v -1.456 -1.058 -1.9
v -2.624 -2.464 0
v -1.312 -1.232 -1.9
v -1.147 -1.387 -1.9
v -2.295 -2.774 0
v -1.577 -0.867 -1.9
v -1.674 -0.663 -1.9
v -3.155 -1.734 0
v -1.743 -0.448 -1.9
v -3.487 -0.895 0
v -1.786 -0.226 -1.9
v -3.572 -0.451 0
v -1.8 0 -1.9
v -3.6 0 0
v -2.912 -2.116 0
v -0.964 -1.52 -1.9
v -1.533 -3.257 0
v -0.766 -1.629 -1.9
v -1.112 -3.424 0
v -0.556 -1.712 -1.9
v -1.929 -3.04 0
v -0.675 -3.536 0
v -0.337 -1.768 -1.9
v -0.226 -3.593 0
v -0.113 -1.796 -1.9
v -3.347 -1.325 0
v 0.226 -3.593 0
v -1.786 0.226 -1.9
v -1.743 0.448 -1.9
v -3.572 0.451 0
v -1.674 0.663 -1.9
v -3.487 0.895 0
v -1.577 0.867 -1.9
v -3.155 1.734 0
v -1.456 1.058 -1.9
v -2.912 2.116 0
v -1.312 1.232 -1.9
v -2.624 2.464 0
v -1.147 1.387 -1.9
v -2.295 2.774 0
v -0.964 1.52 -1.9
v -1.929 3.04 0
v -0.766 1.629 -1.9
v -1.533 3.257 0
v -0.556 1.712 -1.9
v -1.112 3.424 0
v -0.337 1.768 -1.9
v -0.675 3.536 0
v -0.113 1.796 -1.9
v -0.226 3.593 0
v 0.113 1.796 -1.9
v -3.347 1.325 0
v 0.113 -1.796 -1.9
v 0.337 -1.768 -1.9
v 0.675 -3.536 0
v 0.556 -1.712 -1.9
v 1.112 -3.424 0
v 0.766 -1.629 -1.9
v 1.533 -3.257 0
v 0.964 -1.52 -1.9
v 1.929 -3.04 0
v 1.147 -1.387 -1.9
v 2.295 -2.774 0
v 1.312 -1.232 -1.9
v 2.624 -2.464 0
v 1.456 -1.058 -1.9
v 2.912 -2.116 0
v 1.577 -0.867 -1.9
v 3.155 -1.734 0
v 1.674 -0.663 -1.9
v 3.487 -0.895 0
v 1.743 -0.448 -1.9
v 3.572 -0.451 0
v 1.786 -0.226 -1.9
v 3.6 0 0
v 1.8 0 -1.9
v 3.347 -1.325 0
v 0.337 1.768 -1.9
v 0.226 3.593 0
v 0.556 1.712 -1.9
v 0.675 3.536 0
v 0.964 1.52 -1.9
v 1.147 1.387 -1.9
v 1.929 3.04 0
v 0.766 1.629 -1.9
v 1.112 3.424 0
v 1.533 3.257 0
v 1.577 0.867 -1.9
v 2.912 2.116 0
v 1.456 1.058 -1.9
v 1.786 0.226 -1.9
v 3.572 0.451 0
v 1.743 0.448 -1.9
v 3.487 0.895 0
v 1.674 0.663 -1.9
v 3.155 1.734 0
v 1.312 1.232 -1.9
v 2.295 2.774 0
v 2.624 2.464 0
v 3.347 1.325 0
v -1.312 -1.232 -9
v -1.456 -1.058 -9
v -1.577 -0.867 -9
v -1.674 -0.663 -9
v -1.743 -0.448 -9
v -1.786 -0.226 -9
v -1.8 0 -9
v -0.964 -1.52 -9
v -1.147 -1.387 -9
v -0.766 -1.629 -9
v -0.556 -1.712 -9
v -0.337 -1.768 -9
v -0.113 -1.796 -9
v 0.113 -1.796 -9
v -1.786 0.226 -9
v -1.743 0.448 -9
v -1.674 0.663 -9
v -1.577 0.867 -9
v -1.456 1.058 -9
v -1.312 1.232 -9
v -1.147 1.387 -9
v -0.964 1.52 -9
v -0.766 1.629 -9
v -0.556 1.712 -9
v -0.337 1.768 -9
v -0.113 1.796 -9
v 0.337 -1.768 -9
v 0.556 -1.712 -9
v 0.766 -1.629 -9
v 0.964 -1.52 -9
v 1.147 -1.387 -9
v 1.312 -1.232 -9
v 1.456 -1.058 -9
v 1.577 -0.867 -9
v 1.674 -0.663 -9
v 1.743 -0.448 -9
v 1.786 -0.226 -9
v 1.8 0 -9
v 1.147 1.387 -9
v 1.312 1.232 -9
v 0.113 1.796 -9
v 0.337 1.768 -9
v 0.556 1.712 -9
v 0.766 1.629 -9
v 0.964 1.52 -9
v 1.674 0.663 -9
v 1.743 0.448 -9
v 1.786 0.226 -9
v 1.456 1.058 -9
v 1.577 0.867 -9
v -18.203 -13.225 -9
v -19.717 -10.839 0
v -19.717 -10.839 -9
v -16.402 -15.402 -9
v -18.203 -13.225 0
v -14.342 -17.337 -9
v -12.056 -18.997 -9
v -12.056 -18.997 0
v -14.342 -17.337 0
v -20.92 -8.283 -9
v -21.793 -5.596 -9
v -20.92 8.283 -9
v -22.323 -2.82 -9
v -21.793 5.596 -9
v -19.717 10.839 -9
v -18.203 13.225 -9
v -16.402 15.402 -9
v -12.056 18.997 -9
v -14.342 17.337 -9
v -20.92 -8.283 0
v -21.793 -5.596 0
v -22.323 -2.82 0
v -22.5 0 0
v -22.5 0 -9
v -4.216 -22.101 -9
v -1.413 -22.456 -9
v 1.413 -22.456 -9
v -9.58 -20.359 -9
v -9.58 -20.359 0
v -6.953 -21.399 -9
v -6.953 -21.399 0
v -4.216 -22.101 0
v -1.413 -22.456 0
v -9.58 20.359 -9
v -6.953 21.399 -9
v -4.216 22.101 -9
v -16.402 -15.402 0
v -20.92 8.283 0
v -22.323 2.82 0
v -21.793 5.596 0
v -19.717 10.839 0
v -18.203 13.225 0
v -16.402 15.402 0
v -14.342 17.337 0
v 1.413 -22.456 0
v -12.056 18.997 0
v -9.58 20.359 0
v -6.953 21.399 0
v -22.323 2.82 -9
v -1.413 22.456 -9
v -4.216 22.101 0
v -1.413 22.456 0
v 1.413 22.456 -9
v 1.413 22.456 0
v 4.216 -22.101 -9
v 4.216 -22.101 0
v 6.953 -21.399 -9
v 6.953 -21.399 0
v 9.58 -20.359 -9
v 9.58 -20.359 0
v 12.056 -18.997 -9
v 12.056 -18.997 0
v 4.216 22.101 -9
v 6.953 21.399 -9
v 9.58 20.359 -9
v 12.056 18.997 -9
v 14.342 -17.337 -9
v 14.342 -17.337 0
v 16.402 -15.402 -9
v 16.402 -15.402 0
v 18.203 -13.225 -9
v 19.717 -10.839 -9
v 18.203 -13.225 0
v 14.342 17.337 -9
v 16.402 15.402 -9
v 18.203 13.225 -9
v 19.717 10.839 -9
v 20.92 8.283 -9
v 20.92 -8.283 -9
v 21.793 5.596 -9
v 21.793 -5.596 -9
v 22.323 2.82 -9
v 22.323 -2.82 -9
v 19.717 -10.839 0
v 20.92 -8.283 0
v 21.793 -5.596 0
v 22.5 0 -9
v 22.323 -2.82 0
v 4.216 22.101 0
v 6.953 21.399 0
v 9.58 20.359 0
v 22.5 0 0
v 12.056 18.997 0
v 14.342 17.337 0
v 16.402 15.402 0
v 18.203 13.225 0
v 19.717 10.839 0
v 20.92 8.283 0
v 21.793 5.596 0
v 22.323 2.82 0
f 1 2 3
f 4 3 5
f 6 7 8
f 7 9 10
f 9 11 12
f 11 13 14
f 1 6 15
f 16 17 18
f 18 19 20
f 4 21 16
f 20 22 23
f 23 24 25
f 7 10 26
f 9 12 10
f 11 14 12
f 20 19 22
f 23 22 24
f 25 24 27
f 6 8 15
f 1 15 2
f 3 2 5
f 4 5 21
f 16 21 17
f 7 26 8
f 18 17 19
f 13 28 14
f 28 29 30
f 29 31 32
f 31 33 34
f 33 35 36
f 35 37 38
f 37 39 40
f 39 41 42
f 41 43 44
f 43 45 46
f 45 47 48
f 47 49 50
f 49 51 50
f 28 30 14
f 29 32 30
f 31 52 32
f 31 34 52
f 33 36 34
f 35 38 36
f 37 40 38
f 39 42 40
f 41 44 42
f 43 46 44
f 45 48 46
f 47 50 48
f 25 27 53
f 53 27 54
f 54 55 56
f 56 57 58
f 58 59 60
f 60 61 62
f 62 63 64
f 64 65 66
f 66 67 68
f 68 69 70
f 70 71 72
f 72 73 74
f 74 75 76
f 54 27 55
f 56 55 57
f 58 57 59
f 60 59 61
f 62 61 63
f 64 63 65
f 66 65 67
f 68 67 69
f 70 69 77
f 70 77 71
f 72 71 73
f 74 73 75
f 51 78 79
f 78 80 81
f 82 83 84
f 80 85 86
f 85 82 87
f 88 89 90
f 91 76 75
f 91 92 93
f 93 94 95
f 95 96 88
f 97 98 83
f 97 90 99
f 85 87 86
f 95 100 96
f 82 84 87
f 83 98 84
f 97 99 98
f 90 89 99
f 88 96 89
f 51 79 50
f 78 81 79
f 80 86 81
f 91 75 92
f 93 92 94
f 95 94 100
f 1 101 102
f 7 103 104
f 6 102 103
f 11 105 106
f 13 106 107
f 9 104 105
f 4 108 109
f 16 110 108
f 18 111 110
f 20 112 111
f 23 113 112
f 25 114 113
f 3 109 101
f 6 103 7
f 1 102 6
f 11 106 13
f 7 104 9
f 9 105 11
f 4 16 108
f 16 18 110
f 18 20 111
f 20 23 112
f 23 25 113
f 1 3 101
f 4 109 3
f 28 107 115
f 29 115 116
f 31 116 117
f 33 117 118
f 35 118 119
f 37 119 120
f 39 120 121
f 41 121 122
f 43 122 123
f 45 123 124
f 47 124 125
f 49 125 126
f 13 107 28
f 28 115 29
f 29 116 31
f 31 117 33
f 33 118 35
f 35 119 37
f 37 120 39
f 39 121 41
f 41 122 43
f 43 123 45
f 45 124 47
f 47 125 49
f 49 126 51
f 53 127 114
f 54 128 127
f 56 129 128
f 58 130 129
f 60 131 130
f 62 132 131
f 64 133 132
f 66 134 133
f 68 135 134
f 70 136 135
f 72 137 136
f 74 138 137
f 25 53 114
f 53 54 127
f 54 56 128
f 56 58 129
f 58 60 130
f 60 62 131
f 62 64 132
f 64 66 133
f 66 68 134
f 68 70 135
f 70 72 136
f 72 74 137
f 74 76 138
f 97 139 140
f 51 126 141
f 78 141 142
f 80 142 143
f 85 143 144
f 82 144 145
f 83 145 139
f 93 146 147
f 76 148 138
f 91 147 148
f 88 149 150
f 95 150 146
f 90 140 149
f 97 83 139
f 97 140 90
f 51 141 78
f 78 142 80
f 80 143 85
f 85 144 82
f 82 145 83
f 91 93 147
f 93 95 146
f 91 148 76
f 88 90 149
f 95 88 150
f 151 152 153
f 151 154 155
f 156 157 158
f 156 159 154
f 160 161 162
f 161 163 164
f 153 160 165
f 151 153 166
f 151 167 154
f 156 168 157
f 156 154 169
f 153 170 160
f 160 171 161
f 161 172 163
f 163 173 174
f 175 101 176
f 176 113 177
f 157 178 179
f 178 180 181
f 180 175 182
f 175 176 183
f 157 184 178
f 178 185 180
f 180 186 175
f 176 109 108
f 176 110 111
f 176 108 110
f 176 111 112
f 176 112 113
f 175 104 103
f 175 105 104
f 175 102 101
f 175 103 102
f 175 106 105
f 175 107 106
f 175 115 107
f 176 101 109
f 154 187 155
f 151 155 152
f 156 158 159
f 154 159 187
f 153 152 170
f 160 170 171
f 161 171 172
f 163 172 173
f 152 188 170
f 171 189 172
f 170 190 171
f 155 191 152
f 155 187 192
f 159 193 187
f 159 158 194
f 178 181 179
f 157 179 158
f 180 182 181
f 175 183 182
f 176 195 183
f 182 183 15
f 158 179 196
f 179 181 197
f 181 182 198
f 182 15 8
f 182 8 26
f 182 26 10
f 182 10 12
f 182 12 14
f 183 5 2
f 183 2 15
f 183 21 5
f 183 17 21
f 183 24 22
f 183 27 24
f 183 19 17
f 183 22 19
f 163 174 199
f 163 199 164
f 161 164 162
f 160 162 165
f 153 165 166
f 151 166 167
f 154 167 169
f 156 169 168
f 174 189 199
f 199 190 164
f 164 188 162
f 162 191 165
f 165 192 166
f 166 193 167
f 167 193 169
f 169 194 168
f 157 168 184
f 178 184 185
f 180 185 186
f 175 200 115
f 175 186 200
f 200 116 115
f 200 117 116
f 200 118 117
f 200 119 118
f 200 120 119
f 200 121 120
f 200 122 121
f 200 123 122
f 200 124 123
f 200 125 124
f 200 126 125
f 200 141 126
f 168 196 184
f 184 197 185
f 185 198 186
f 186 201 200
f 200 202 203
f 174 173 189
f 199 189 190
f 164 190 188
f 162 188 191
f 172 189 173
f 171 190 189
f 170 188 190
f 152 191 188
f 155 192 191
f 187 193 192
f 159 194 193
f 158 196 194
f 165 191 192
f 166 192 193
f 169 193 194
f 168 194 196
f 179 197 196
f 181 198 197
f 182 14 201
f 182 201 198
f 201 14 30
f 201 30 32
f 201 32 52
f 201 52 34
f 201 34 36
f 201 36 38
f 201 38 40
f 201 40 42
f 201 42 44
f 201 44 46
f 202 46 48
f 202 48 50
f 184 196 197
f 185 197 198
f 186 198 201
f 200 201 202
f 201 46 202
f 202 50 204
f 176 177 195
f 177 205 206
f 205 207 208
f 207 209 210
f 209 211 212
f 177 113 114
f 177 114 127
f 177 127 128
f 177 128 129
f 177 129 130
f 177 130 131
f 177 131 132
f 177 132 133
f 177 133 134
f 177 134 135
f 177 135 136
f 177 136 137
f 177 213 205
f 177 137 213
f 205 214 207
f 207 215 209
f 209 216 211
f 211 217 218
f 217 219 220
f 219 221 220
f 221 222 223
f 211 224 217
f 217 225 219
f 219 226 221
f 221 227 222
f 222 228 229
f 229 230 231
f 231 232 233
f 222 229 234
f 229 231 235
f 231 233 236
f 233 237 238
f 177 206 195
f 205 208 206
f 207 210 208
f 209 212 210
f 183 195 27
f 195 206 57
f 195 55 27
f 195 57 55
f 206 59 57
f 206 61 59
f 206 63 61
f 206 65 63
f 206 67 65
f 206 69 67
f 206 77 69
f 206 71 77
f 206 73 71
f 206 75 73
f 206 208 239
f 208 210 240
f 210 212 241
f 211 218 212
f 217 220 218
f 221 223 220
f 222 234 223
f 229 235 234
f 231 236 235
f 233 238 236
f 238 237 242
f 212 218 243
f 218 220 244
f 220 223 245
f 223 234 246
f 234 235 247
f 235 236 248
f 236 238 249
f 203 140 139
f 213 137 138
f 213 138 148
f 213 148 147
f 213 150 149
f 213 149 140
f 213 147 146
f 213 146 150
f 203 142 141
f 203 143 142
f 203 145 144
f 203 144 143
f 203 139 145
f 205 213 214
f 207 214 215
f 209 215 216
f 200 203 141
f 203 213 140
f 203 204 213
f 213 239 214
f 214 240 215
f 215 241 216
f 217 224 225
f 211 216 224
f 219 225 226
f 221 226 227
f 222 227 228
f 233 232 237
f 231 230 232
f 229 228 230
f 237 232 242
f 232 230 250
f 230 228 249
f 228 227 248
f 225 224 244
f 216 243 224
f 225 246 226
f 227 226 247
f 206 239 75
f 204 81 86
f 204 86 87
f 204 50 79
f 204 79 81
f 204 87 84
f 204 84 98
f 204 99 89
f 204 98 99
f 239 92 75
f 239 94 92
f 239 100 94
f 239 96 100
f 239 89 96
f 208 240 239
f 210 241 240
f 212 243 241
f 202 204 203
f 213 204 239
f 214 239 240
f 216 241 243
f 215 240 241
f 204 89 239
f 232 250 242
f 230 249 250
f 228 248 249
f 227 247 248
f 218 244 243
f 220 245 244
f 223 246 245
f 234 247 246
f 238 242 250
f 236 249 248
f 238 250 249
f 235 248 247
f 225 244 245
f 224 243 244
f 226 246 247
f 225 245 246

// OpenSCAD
$fn = 50;


difference() {
	union() {
		translate(v = [0, 0, -9.0000000000]) {
			cylinder(h = 9, r = 22.5000000000);
		}
	}
	union() {
		translate(v = [0, 0, 0]) {
			rotate(a = [0, 0, 0]) {
				difference() {
					union() {
						translate(v = [0, 0, -12.0000000000]) {
							cylinder(h = 12, r = 1.5000000000);
						}
						translate(v = [0, 0, -1.9000000000]) {
							cylinder(h = 1.9000000000, r1 = 1.8000000000, r2 = 3.6000000000);
						}
						translate(v = [0, 0, -12.0000000000]) {
							cylinder(h = 12, r = 1.8000000000);
						}
						translate(v = [0, 0, -12.0000000000]) {
							cylinder(h = 12, r = 1.5000000000);
						}
					}
					union();
				}
			}
		}
	}
}
